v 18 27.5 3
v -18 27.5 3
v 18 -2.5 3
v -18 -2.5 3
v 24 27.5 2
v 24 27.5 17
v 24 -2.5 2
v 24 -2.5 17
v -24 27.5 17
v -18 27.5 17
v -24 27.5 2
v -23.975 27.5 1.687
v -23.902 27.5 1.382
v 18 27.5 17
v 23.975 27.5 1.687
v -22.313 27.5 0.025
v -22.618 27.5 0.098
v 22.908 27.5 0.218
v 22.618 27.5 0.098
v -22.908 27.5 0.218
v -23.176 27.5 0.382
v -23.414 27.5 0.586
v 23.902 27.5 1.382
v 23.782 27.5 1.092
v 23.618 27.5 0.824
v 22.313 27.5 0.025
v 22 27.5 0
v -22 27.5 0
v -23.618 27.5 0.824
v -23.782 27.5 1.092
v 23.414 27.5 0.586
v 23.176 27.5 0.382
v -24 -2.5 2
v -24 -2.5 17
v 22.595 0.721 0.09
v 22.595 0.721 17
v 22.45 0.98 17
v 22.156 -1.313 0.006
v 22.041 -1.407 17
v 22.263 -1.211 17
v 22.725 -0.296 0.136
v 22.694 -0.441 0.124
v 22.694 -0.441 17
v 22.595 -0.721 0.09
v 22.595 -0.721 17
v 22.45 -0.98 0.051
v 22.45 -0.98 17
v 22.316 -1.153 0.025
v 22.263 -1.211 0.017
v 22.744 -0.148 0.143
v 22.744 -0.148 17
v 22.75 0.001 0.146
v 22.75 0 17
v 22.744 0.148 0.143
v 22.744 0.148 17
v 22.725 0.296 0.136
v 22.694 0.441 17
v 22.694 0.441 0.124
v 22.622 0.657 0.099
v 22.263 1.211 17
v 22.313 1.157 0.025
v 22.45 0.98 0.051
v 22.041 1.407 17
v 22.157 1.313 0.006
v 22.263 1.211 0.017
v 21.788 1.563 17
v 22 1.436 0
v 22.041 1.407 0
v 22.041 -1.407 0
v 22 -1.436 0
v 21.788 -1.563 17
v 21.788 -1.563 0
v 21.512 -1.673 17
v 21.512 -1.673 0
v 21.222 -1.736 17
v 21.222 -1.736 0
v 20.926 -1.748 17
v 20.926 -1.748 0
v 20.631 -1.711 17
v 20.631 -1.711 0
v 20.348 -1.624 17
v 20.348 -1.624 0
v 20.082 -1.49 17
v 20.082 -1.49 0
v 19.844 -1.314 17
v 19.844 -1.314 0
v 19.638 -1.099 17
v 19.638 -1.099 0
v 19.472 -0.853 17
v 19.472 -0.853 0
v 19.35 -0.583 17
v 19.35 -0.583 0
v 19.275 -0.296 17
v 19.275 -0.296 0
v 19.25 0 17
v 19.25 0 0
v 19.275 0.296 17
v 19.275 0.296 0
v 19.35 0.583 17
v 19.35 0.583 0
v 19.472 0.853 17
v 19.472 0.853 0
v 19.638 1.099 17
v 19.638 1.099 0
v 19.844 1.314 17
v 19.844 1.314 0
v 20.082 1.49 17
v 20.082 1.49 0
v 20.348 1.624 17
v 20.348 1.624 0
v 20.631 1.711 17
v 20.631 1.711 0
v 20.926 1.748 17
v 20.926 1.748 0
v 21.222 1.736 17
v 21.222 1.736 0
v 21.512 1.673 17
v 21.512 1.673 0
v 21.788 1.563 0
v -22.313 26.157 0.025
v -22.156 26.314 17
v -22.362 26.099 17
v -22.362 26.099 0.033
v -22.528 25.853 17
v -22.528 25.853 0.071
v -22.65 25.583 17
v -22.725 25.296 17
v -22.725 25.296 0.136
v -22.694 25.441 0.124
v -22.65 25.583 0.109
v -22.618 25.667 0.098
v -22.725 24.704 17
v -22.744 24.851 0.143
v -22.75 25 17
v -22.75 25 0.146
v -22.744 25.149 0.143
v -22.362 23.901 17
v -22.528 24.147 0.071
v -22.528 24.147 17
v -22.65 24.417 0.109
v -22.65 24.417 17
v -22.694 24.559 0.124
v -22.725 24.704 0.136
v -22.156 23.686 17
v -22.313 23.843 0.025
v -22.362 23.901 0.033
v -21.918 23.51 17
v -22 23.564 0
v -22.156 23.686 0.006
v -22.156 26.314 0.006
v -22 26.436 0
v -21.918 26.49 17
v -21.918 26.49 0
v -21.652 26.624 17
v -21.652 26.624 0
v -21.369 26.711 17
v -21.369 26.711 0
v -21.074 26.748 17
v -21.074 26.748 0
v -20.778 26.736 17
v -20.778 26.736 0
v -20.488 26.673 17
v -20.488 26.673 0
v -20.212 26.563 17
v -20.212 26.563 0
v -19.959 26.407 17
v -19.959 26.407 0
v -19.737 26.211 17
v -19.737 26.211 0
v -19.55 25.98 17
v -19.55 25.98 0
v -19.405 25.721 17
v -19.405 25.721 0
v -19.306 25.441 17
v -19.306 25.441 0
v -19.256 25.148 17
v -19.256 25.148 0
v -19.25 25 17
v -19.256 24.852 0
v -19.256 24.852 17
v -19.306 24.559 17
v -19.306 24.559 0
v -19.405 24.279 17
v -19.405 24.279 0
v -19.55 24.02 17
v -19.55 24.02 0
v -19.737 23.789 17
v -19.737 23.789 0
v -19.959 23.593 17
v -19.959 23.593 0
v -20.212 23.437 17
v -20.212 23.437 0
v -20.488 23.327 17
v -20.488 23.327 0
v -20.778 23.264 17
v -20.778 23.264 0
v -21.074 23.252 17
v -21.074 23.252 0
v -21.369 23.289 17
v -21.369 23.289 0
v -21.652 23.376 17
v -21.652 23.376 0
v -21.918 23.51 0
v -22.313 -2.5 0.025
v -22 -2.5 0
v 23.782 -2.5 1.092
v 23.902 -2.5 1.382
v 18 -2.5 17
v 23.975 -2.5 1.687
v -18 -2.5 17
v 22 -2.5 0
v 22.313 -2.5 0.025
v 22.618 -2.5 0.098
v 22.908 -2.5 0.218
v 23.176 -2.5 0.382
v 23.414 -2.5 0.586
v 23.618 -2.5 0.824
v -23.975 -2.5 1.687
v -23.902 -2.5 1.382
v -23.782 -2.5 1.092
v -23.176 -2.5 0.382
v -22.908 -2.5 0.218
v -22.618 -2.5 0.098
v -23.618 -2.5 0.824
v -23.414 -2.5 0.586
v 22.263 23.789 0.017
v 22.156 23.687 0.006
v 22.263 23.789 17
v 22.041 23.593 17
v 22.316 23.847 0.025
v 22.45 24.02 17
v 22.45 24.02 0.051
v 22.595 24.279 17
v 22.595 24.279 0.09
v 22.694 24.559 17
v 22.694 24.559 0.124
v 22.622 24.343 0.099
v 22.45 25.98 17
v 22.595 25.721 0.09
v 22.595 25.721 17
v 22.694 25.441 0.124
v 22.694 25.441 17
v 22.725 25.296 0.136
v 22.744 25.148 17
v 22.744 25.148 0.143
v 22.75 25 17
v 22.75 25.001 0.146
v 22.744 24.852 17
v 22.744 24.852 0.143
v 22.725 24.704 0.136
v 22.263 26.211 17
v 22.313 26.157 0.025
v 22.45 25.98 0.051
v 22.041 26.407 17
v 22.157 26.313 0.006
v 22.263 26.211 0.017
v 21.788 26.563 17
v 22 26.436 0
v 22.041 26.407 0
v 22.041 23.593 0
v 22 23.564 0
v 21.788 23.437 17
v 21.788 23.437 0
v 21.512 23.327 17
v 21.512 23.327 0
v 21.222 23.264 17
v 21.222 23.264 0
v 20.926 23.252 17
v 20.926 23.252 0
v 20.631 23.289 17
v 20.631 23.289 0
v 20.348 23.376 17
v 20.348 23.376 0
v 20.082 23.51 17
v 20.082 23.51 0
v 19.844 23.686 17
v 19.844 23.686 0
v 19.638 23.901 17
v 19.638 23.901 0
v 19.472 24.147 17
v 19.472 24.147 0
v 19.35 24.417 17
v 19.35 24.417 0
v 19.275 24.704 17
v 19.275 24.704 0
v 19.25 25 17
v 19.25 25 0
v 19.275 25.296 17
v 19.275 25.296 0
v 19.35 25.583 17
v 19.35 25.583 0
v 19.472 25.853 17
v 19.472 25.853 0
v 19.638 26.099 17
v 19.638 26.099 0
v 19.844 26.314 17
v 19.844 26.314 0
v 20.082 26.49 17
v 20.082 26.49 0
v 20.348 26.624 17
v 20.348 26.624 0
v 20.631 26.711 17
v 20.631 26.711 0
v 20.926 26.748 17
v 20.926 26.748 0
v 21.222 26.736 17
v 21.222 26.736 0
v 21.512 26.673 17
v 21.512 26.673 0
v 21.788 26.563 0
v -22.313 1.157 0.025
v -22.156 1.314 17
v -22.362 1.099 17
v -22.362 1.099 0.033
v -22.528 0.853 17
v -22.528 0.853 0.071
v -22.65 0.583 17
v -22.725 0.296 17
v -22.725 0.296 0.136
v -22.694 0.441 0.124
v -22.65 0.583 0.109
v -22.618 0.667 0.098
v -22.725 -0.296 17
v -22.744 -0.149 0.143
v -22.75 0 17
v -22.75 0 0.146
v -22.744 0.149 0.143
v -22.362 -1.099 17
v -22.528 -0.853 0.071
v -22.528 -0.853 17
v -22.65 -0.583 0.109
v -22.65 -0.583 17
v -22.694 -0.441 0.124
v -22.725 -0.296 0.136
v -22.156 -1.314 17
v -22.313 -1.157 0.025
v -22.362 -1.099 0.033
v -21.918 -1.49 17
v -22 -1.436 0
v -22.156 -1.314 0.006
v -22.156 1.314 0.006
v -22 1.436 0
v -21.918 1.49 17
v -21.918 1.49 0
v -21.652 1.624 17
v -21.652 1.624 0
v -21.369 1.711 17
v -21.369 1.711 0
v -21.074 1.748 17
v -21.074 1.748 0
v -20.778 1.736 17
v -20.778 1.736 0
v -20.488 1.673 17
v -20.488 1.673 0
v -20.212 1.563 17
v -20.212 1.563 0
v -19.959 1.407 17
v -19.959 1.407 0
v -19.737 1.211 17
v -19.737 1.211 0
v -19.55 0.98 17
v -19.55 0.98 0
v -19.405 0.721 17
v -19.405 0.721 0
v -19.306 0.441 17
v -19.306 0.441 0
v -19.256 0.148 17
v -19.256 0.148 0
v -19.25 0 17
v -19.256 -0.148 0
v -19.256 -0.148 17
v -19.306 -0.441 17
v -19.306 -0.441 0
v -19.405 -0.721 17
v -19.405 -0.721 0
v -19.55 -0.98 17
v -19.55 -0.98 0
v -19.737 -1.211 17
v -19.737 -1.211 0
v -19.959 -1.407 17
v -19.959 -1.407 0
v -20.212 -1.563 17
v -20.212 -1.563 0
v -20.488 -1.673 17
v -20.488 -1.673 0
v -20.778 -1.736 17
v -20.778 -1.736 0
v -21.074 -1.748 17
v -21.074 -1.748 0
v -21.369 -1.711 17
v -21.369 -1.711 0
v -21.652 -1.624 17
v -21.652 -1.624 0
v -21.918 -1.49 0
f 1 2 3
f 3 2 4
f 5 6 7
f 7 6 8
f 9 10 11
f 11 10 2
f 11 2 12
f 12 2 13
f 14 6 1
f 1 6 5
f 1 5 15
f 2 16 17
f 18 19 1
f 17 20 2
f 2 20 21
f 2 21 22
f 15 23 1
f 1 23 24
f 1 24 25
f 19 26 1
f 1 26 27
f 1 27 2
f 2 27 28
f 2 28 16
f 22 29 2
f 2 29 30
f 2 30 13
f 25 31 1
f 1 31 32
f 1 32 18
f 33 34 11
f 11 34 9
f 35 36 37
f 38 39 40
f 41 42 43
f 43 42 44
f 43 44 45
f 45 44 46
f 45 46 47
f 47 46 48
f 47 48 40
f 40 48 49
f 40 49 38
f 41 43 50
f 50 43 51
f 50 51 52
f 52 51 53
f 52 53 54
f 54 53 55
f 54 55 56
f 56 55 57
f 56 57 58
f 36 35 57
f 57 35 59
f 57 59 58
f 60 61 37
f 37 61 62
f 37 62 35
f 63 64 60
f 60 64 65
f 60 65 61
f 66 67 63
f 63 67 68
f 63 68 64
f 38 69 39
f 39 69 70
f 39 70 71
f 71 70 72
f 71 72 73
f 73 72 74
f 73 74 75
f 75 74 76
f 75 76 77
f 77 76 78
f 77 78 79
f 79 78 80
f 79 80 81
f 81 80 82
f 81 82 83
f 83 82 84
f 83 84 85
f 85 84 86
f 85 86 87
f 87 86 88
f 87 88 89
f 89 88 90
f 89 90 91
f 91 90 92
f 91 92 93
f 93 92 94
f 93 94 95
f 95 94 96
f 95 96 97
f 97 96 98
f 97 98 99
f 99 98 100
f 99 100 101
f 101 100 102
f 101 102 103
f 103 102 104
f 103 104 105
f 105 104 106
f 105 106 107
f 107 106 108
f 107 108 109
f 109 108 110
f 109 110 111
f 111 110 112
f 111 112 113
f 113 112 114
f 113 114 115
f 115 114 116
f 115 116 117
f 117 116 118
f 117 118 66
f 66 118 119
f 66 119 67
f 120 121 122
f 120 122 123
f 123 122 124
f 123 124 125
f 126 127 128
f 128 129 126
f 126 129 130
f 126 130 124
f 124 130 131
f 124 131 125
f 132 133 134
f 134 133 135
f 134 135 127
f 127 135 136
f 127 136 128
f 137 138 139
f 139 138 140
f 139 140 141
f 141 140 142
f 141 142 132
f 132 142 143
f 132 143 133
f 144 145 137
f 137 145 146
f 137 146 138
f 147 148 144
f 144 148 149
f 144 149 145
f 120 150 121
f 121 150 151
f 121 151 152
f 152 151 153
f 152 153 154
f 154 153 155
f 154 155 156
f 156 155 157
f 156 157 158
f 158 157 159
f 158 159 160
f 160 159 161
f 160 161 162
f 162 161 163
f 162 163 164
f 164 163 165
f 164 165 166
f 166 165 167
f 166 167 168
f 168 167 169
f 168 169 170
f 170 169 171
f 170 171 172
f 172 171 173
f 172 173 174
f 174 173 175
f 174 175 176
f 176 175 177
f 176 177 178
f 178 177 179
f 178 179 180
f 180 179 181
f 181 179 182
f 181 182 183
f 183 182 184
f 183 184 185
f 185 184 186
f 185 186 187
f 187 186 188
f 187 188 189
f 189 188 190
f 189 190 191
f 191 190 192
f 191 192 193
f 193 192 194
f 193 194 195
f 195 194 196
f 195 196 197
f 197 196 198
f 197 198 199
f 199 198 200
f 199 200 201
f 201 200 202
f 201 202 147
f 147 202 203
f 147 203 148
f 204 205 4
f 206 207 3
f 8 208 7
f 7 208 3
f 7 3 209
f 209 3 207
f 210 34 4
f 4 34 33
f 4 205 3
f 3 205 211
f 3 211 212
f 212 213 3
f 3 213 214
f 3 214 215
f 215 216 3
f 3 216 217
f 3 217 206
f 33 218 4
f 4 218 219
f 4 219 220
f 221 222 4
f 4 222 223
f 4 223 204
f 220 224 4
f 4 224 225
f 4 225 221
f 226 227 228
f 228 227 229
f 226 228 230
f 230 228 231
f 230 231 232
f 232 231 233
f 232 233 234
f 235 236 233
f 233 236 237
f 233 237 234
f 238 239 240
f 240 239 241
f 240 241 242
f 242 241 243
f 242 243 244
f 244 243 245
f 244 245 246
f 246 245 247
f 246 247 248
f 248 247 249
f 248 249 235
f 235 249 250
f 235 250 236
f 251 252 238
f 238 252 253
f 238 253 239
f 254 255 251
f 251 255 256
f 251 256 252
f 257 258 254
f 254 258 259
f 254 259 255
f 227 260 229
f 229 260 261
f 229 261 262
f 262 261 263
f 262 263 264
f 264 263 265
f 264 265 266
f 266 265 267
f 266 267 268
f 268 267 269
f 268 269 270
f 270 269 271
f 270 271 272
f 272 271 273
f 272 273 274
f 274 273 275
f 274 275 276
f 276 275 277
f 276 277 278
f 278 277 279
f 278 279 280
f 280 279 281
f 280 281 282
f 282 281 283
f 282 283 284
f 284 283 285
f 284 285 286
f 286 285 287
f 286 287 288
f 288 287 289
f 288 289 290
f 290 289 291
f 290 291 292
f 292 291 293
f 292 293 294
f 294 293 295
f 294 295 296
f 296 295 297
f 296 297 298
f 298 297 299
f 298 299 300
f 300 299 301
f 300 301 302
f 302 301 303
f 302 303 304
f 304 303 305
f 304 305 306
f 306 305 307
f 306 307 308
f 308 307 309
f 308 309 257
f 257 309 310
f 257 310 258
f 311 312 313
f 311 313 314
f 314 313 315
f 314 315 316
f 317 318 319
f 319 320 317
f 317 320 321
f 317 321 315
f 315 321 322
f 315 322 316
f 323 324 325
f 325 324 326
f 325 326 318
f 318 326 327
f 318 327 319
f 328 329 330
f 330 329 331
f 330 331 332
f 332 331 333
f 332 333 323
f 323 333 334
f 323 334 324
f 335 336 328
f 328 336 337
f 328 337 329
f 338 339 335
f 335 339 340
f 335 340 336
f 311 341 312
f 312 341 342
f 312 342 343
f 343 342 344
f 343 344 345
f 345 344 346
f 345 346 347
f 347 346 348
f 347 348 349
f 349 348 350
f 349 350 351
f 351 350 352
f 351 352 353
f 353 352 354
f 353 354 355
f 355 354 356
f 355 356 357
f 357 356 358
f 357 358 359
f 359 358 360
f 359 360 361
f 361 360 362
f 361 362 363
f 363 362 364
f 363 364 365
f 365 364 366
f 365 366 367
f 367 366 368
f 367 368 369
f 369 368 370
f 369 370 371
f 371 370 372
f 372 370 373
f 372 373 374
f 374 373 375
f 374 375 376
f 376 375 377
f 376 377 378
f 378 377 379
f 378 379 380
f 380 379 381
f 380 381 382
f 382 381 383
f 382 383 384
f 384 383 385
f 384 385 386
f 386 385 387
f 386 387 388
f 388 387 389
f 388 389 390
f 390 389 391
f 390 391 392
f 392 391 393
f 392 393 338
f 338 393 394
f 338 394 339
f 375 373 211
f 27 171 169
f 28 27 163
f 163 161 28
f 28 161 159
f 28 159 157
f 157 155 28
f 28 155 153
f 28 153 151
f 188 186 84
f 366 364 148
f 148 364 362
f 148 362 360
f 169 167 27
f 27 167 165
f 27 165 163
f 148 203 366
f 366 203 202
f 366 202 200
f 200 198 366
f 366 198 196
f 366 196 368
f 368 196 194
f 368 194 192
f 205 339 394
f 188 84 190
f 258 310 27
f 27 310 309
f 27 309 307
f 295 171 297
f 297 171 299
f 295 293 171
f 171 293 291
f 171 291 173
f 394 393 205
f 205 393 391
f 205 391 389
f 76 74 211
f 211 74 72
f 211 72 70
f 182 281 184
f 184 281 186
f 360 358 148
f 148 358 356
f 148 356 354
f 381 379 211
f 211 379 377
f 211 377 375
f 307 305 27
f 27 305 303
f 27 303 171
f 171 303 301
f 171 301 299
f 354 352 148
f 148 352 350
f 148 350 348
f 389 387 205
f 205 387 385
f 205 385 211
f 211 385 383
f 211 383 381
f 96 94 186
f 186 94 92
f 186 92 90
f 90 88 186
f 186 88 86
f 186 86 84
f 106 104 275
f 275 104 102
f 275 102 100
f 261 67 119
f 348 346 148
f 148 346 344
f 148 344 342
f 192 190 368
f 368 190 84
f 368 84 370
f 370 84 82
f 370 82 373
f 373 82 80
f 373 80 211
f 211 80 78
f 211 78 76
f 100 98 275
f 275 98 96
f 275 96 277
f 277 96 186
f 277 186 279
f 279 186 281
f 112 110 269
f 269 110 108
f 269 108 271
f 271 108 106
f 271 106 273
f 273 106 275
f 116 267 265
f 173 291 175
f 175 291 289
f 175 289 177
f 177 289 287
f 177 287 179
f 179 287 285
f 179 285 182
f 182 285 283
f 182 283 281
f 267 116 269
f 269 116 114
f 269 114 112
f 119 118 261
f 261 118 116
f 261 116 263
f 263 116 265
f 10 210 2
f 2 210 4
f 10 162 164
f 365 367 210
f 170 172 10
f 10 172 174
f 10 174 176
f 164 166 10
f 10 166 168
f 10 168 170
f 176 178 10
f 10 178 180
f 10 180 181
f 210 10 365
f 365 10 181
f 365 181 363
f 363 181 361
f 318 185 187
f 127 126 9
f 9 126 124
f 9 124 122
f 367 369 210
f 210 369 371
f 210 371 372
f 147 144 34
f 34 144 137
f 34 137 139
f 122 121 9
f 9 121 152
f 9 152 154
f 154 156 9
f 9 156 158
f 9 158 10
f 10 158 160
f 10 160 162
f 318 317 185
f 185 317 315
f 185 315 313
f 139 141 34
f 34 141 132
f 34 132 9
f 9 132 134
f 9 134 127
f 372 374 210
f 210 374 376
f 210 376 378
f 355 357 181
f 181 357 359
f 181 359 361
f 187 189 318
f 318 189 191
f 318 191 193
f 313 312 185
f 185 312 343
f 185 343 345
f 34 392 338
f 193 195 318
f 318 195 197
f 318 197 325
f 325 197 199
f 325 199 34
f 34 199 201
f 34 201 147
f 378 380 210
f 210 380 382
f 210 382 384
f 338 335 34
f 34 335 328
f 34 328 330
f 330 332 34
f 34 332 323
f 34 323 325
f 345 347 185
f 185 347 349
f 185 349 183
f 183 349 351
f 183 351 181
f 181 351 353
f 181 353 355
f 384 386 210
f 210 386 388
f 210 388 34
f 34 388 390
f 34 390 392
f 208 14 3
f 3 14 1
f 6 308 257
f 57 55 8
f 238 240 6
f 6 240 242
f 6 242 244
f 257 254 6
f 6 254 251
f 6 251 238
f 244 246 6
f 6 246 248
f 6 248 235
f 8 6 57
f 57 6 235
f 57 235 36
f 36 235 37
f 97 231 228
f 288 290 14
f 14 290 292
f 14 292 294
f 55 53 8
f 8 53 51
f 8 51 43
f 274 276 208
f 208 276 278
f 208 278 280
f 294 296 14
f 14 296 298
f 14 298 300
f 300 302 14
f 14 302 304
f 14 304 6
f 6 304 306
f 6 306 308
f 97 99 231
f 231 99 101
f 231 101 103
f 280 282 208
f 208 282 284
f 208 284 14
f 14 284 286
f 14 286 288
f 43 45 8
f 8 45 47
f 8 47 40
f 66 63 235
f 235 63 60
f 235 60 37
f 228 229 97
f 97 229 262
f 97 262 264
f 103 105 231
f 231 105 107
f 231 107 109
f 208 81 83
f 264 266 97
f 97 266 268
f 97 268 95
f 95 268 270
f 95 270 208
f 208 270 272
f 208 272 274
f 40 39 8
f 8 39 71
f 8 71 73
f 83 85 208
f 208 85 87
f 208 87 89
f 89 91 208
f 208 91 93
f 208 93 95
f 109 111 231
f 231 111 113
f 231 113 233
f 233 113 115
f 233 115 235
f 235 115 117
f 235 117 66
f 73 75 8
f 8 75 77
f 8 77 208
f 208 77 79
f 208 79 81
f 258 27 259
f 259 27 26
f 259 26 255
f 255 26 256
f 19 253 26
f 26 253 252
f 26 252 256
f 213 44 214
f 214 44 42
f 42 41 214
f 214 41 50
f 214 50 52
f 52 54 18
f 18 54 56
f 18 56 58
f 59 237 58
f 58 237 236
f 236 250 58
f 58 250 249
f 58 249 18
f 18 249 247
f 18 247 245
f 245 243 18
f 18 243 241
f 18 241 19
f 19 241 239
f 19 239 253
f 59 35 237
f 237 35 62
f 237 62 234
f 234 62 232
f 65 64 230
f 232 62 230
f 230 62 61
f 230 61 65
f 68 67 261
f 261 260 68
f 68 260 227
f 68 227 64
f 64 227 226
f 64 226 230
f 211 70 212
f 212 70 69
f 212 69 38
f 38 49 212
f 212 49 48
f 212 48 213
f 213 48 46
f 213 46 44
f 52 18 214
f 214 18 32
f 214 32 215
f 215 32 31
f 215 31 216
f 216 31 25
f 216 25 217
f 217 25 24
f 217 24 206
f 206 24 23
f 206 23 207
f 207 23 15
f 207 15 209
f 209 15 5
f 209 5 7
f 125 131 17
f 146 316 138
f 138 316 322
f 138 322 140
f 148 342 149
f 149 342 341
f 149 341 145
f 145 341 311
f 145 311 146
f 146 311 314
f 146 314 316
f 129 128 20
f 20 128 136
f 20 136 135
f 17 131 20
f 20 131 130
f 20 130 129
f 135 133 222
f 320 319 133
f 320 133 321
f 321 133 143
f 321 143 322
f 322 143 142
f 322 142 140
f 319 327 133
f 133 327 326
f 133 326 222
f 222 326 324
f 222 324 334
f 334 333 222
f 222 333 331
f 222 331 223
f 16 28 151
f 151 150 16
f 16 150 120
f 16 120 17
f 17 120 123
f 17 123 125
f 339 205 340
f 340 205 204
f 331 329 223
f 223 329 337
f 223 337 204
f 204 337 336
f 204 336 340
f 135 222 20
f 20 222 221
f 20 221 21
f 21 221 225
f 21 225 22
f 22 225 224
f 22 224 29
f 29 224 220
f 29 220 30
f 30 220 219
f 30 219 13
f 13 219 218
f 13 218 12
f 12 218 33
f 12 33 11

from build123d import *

# Parameters (mm, degrees)
CROQUIS1_R              = 1.75
SALIENTE_EXTRUIR1_DEPTH = 3
CROQUIS3_W              = 6
CROQUIS3_H              = 30
CROQUIS3_R              = 1.75
SALIENTE_EXTRUIR4_DEPTH = 14
REDONDEO1_R             = 2


with BuildPart() as part:
    # Croquis1 → Saliente-Extruir1 (new body)
    # profile 1 of 2: a face of its own
    with BuildSketch(Plane.XY):
        Polygon((-24, 12.5), (24, 12.5), (24, 22.5), (24, 27.5), (-24, 27.5), (-24, 22.5), align=None)
        with Locations((-21, 25)):
            Circle(CROQUIS1_R, mode=Mode.SUBTRACT)
        with Locations((21, 25)):
            Circle(CROQUIS1_R, mode=Mode.SUBTRACT)
    # profile 2 of 2: a face of its own
    with BuildSketch(Plane.XY):
        Polygon((-24, -2.5), (24, -2.5), (24, 2.5), (24, 12.5), (-24, 12.5), (-24, 2.5), align=None)
        with Locations((-21, 0)):
            Circle(CROQUIS1_R, mode=Mode.SUBTRACT)
        with Locations((21, 0)):
            Circle(CROQUIS1_R, mode=Mode.SUBTRACT)
    extrude(amount=SALIENTE_EXTRUIR1_DEPTH)

    # Croquis3 → Saliente-Extruir4 (add)
    # profile 1 of 2: a face of its own
    with BuildSketch(Plane.XY.offset(3)):
        with Locations((-21, 12.5)):
            Rectangle(CROQUIS3_W, CROQUIS3_H)
        with Locations((-21, 0)):
            Circle(CROQUIS3_R, mode=Mode.SUBTRACT)
        with Locations((-21, 25)):
            Circle(CROQUIS3_R, mode=Mode.SUBTRACT)
    # profile 2 of 2: a face of its own
    with BuildSketch(Plane.XY.offset(3)):
        with Locations((21, 12.5)):
            Rectangle(CROQUIS3_W, CROQUIS3_H)
        with Locations((21, 0)):
            Circle(CROQUIS3_R, mode=Mode.SUBTRACT)
        with Locations((21, 25)):
            Circle(CROQUIS3_R, mode=Mode.SUBTRACT)
    extrude(amount=SALIENTE_EXTRUIR4_DEPTH)

    # Redondeo1
    # the kernel refuses this fillet: 2 mm, written as the material it takes off along each edge
    with BuildSketch(Plane(origin=(-24, 32.5, 0), x_dir=(1, 0, 0), z_dir=(0, -1, 0)), Plane(origin=(24, -7.5, 0), x_dir=(-1, 0, 0), z_dir=(0, 1, 0))) as redondeo1_piece_1:
        with BuildLine():
            CenterArc((REDONDEO1_R, REDONDEO1_R), REDONDEO1_R, 180, 90)
            Line((0, REDONDEO1_R), (0, 0))
            Line((0, 0), (REDONDEO1_R, 0))
        make_face()
    extrude(amount=40, mode=Mode.SUBTRACT)


solid = part.part
